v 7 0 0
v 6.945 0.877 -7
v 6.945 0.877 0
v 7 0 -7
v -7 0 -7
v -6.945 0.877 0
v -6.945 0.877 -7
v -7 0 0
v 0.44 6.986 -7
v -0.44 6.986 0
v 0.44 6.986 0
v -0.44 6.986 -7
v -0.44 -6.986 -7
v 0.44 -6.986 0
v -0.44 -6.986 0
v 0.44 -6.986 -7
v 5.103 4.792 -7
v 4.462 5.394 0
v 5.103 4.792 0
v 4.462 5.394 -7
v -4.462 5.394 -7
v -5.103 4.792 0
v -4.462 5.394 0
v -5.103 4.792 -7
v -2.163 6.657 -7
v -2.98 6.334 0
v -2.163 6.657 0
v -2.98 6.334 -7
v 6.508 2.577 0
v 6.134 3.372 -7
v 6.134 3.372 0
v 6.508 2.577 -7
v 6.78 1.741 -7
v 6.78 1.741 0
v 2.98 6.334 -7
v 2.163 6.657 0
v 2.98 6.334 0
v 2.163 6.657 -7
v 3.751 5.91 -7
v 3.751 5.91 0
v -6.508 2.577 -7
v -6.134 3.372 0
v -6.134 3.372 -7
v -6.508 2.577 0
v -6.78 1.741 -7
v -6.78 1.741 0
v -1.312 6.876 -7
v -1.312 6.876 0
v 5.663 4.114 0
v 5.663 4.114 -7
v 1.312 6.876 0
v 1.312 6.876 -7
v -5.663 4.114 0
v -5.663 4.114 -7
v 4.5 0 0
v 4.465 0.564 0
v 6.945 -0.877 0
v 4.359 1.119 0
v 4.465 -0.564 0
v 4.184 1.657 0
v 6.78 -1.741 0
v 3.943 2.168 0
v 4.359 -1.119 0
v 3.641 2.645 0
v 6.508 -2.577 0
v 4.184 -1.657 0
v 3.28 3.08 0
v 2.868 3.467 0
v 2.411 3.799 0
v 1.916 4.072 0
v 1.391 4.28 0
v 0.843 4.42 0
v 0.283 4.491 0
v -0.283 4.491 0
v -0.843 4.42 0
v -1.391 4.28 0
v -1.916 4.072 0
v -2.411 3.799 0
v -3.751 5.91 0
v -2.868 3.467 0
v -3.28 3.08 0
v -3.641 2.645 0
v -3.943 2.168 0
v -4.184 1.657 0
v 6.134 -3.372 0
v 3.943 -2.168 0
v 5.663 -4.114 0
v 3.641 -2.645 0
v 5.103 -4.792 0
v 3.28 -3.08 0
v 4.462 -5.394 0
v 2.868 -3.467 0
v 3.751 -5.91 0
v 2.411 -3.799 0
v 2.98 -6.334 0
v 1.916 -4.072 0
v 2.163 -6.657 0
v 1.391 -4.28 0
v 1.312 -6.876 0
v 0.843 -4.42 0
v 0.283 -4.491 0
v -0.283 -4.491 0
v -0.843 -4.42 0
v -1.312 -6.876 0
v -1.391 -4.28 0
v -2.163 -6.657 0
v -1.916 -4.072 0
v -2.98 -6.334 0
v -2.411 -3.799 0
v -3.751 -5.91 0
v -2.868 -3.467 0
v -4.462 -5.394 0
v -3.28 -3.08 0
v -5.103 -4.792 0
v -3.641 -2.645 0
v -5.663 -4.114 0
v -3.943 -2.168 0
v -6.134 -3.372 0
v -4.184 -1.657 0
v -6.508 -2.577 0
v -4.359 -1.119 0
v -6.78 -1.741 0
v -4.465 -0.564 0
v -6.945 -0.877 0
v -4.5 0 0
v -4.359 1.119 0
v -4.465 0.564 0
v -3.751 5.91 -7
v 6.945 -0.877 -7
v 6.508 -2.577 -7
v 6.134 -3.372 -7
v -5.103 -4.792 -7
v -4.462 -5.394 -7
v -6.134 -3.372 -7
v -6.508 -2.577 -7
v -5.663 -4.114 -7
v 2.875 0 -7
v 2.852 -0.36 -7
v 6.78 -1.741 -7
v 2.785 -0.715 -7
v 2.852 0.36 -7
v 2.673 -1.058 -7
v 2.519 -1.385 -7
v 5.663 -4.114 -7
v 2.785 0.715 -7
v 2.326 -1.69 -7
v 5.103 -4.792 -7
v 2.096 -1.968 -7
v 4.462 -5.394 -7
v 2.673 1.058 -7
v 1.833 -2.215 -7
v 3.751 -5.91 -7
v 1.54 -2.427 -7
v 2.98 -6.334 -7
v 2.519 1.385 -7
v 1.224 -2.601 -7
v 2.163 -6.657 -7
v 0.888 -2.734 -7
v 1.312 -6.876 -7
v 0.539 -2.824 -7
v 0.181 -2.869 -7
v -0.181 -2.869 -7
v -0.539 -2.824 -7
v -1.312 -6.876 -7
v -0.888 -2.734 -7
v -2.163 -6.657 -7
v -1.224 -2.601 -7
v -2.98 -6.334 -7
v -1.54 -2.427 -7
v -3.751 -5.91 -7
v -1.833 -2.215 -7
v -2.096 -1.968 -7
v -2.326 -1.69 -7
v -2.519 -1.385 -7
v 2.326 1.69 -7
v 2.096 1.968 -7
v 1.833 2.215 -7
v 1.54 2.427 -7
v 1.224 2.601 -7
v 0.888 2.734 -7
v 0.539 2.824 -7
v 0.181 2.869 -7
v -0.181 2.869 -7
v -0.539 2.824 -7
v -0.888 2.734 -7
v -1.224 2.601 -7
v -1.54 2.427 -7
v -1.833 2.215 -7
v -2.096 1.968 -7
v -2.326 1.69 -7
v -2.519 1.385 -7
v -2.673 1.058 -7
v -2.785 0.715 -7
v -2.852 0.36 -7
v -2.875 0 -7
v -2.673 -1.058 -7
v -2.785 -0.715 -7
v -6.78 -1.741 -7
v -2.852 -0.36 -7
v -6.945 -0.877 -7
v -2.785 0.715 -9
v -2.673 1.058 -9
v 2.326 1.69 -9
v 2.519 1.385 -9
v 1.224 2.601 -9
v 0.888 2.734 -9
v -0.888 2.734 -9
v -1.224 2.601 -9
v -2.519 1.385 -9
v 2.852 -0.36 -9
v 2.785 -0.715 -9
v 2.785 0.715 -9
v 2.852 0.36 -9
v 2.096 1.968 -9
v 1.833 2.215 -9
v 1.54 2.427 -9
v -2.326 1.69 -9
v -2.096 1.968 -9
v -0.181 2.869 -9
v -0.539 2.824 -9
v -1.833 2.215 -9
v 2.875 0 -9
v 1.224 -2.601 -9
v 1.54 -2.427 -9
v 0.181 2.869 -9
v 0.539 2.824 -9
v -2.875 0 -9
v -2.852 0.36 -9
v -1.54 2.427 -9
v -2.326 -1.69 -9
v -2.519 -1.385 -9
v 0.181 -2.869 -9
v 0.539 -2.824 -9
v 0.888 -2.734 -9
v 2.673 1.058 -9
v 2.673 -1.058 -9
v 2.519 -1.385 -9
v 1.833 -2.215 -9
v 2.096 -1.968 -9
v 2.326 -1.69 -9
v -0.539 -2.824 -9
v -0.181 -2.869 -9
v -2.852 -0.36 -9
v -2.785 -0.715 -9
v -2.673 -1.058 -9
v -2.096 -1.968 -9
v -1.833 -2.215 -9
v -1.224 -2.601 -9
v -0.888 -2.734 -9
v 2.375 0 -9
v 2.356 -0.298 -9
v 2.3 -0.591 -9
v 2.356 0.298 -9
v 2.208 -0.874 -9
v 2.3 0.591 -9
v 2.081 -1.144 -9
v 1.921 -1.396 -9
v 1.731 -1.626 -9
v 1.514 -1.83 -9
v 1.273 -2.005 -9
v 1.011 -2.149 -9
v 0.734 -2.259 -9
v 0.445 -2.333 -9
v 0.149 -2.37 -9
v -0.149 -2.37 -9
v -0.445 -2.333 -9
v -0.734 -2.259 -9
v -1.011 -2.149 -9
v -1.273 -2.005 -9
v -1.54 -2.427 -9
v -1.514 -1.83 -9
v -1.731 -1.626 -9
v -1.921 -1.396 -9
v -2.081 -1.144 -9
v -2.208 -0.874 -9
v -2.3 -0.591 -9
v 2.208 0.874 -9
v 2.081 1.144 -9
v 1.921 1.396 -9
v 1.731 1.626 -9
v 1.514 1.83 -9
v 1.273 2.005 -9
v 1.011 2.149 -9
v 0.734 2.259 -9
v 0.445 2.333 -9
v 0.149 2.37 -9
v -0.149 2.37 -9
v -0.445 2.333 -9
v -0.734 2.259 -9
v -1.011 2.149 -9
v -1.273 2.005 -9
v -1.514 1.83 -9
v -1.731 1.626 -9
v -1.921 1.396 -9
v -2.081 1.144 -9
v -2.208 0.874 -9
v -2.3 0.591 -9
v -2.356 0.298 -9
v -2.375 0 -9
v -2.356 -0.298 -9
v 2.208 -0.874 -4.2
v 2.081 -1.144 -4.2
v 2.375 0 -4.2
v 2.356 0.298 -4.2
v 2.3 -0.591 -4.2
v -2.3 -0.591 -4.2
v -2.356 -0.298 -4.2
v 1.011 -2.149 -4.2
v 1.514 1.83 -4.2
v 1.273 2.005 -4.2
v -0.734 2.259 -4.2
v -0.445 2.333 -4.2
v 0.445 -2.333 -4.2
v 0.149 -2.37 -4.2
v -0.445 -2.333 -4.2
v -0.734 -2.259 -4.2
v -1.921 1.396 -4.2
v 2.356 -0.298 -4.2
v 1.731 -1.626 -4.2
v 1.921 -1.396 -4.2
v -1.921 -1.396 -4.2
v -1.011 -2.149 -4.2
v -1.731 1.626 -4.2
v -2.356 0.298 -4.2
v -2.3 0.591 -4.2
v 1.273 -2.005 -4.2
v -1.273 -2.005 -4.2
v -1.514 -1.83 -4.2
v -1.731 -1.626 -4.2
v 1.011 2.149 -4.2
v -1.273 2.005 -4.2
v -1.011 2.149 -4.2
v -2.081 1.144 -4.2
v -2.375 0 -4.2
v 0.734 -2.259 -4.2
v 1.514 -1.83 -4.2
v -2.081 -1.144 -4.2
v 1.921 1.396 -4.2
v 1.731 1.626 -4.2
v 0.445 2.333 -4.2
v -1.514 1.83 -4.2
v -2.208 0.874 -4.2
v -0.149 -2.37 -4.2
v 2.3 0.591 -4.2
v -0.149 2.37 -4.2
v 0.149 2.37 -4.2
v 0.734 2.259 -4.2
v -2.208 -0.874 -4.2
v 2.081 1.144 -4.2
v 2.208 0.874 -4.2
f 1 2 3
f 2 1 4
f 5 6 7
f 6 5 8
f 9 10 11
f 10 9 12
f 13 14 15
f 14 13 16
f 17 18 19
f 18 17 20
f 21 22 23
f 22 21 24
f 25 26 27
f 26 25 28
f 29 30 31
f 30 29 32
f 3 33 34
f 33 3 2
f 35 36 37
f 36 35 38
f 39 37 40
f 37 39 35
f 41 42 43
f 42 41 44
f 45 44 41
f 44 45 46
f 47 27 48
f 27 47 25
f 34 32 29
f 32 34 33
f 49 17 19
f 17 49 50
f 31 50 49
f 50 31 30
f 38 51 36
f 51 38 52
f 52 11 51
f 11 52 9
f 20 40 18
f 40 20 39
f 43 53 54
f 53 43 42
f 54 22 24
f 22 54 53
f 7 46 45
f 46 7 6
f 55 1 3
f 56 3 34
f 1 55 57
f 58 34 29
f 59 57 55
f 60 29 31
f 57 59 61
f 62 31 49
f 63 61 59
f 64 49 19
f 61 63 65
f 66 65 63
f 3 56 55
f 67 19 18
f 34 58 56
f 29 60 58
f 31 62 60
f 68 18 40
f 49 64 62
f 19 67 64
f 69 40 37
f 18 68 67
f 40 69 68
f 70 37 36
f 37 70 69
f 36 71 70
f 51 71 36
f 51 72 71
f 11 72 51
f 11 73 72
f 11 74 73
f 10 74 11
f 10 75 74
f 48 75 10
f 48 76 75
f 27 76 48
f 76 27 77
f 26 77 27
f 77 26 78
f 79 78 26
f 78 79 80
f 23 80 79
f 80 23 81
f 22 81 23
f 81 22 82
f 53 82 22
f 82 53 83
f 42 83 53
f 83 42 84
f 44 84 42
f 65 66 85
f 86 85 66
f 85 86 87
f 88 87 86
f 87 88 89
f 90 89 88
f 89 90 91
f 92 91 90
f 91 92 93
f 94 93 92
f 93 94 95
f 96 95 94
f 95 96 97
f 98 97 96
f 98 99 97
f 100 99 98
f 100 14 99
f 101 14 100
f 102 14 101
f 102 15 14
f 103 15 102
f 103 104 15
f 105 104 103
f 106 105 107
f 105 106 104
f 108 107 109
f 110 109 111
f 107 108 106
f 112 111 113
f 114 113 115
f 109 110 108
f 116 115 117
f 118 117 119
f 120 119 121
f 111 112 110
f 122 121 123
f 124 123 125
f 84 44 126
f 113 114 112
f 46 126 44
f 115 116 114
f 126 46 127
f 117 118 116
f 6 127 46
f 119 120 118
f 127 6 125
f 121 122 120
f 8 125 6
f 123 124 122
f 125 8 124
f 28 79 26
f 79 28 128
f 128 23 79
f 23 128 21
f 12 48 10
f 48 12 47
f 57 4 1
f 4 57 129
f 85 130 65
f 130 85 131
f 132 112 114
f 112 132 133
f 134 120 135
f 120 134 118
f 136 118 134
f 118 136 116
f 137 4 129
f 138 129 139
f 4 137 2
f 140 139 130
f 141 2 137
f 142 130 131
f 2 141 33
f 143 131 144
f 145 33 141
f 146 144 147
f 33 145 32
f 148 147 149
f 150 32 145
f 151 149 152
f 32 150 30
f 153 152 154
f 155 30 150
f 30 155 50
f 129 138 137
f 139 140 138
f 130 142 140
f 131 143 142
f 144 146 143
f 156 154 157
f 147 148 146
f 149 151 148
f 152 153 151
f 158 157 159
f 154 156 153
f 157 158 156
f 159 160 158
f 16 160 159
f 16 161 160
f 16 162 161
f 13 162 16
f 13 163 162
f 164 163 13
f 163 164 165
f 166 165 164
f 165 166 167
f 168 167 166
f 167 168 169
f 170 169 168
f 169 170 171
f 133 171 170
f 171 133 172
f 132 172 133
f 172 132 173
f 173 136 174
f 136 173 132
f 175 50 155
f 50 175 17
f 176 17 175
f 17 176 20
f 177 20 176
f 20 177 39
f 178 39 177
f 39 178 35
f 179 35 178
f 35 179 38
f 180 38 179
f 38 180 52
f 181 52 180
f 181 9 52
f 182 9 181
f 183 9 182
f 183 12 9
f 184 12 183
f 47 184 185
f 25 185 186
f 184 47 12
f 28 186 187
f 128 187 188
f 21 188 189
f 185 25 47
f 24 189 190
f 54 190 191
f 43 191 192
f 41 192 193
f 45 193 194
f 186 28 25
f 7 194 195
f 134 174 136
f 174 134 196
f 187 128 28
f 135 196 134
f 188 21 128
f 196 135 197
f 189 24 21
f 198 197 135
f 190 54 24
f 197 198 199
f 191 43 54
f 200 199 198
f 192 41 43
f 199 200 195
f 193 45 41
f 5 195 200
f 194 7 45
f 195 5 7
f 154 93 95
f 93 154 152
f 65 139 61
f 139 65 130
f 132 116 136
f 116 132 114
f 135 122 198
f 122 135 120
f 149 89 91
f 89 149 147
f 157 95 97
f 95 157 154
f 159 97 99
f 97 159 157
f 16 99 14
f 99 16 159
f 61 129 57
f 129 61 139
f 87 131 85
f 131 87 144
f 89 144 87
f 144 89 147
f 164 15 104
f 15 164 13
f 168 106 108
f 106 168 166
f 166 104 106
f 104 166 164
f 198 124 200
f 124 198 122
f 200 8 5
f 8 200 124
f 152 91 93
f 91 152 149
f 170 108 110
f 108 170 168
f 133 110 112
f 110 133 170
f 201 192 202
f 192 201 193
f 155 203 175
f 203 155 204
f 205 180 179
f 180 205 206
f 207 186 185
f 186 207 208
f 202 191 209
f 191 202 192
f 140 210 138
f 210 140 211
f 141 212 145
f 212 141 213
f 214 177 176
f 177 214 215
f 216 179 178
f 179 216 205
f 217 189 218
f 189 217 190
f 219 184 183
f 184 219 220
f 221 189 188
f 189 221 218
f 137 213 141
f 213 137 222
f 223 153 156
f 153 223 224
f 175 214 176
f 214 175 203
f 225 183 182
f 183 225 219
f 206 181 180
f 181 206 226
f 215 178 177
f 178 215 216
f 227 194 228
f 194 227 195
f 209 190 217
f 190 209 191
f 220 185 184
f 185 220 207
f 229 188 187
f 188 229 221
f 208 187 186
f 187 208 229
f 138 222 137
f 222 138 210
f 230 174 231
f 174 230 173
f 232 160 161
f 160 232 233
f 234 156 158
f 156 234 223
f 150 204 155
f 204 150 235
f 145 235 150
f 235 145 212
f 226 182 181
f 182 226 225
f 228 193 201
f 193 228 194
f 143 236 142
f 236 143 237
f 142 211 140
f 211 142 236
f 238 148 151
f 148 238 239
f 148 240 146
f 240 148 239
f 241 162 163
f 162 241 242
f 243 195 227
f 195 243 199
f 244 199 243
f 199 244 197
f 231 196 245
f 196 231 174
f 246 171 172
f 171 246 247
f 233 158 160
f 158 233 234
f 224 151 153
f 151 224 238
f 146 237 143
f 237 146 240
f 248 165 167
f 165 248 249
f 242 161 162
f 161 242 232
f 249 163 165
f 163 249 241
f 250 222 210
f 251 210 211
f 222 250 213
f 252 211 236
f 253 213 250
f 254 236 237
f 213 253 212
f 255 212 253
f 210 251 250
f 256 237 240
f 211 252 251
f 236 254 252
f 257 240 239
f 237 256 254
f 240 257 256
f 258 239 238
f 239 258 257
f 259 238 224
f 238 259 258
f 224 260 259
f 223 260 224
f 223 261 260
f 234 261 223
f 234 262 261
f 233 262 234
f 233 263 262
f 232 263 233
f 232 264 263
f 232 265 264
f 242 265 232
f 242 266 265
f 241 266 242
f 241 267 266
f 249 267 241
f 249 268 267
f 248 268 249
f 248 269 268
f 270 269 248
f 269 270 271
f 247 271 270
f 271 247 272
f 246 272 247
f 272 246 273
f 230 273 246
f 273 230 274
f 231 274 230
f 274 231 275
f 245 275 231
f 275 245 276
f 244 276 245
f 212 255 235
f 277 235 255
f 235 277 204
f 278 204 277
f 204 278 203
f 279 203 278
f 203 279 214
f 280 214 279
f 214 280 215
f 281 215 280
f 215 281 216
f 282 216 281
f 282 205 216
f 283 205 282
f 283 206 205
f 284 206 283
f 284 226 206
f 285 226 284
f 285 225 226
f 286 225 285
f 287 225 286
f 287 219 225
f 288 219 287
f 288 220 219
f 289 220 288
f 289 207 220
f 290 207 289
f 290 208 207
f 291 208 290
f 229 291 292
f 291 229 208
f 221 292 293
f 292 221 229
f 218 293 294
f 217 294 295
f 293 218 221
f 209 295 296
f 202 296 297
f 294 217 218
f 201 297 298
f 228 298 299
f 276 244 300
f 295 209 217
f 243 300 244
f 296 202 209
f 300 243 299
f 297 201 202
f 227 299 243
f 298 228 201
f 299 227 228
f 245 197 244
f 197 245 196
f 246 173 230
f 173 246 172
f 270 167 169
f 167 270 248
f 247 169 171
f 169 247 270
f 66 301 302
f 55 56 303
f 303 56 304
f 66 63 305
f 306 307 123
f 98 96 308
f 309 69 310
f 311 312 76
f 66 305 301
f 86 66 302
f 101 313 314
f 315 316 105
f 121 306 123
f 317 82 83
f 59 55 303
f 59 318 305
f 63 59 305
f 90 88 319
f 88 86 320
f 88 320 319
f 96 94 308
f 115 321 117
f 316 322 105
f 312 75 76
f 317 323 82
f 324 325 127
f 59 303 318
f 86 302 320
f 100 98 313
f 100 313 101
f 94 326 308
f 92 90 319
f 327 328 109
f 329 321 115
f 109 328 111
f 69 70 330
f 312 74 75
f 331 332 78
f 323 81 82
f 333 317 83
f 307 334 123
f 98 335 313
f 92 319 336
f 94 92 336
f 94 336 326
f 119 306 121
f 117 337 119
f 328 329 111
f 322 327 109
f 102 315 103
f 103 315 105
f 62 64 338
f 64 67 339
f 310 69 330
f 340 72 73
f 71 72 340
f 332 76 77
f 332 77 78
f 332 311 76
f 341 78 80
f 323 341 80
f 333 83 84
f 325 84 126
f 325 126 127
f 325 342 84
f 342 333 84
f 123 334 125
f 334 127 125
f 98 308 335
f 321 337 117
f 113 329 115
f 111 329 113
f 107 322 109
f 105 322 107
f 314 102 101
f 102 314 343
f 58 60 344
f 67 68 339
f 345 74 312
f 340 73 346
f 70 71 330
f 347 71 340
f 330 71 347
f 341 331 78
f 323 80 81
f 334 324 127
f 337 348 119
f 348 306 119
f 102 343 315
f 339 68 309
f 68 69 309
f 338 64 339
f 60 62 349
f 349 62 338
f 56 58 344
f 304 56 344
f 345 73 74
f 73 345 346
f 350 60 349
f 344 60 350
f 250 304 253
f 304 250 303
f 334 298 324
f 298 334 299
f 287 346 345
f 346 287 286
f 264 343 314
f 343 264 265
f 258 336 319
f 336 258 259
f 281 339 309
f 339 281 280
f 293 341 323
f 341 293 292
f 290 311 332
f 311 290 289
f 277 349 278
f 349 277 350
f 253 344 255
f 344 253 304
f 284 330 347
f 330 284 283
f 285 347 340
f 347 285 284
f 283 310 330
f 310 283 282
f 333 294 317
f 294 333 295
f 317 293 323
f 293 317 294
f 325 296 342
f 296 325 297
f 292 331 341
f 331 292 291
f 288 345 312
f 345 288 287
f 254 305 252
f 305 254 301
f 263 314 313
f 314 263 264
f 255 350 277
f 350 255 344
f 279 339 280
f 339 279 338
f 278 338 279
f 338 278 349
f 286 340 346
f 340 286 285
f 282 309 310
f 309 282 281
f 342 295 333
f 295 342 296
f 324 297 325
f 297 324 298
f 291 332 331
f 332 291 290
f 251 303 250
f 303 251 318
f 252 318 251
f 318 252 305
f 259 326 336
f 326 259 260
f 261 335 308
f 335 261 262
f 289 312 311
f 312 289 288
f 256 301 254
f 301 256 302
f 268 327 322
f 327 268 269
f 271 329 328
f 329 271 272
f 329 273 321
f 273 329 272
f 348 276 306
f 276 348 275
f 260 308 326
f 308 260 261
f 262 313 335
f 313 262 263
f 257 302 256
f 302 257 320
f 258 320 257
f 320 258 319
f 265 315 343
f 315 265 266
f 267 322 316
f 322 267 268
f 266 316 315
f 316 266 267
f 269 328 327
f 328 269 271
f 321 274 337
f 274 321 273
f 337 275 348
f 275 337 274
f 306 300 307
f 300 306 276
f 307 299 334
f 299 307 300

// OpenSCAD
$fn = 50;


difference() {
	union() {
		translate(v = [0, 0, -7.0000000000]) {
			cylinder(h = 7, r = 7.0000000000);
		}
		translate(v = [0, 0, -9.0000000000]) {
			cylinder(h = 9, r = 2.8750000000);
		}
	}
	union() {
		translate(v = [0, 0, 0]) {
			rotate(a = [0, 0, 0]) {
				difference() {
					union() {
						#translate(v = [0, 0, -9.0000000000]) {
							cylinder(h = 9, r = 2.2500000000);
						}
						#translate(v = [0, 0, -4.2000000000]) {
							cylinder(h = 4.2000000000, r1 = 2.3750000000, r2 = 4.5000000000);
						}
						#translate(v = [0, 0, -9.0000000000]) {
							cylinder(h = 9, r = 2.3750000000);
						}
						#translate(v = [0, 0, -9.0000000000]) {
							cylinder(h = 9, r = 2.2500000000);
						}
					}
					union();
				}
			}
		}
	}
}
